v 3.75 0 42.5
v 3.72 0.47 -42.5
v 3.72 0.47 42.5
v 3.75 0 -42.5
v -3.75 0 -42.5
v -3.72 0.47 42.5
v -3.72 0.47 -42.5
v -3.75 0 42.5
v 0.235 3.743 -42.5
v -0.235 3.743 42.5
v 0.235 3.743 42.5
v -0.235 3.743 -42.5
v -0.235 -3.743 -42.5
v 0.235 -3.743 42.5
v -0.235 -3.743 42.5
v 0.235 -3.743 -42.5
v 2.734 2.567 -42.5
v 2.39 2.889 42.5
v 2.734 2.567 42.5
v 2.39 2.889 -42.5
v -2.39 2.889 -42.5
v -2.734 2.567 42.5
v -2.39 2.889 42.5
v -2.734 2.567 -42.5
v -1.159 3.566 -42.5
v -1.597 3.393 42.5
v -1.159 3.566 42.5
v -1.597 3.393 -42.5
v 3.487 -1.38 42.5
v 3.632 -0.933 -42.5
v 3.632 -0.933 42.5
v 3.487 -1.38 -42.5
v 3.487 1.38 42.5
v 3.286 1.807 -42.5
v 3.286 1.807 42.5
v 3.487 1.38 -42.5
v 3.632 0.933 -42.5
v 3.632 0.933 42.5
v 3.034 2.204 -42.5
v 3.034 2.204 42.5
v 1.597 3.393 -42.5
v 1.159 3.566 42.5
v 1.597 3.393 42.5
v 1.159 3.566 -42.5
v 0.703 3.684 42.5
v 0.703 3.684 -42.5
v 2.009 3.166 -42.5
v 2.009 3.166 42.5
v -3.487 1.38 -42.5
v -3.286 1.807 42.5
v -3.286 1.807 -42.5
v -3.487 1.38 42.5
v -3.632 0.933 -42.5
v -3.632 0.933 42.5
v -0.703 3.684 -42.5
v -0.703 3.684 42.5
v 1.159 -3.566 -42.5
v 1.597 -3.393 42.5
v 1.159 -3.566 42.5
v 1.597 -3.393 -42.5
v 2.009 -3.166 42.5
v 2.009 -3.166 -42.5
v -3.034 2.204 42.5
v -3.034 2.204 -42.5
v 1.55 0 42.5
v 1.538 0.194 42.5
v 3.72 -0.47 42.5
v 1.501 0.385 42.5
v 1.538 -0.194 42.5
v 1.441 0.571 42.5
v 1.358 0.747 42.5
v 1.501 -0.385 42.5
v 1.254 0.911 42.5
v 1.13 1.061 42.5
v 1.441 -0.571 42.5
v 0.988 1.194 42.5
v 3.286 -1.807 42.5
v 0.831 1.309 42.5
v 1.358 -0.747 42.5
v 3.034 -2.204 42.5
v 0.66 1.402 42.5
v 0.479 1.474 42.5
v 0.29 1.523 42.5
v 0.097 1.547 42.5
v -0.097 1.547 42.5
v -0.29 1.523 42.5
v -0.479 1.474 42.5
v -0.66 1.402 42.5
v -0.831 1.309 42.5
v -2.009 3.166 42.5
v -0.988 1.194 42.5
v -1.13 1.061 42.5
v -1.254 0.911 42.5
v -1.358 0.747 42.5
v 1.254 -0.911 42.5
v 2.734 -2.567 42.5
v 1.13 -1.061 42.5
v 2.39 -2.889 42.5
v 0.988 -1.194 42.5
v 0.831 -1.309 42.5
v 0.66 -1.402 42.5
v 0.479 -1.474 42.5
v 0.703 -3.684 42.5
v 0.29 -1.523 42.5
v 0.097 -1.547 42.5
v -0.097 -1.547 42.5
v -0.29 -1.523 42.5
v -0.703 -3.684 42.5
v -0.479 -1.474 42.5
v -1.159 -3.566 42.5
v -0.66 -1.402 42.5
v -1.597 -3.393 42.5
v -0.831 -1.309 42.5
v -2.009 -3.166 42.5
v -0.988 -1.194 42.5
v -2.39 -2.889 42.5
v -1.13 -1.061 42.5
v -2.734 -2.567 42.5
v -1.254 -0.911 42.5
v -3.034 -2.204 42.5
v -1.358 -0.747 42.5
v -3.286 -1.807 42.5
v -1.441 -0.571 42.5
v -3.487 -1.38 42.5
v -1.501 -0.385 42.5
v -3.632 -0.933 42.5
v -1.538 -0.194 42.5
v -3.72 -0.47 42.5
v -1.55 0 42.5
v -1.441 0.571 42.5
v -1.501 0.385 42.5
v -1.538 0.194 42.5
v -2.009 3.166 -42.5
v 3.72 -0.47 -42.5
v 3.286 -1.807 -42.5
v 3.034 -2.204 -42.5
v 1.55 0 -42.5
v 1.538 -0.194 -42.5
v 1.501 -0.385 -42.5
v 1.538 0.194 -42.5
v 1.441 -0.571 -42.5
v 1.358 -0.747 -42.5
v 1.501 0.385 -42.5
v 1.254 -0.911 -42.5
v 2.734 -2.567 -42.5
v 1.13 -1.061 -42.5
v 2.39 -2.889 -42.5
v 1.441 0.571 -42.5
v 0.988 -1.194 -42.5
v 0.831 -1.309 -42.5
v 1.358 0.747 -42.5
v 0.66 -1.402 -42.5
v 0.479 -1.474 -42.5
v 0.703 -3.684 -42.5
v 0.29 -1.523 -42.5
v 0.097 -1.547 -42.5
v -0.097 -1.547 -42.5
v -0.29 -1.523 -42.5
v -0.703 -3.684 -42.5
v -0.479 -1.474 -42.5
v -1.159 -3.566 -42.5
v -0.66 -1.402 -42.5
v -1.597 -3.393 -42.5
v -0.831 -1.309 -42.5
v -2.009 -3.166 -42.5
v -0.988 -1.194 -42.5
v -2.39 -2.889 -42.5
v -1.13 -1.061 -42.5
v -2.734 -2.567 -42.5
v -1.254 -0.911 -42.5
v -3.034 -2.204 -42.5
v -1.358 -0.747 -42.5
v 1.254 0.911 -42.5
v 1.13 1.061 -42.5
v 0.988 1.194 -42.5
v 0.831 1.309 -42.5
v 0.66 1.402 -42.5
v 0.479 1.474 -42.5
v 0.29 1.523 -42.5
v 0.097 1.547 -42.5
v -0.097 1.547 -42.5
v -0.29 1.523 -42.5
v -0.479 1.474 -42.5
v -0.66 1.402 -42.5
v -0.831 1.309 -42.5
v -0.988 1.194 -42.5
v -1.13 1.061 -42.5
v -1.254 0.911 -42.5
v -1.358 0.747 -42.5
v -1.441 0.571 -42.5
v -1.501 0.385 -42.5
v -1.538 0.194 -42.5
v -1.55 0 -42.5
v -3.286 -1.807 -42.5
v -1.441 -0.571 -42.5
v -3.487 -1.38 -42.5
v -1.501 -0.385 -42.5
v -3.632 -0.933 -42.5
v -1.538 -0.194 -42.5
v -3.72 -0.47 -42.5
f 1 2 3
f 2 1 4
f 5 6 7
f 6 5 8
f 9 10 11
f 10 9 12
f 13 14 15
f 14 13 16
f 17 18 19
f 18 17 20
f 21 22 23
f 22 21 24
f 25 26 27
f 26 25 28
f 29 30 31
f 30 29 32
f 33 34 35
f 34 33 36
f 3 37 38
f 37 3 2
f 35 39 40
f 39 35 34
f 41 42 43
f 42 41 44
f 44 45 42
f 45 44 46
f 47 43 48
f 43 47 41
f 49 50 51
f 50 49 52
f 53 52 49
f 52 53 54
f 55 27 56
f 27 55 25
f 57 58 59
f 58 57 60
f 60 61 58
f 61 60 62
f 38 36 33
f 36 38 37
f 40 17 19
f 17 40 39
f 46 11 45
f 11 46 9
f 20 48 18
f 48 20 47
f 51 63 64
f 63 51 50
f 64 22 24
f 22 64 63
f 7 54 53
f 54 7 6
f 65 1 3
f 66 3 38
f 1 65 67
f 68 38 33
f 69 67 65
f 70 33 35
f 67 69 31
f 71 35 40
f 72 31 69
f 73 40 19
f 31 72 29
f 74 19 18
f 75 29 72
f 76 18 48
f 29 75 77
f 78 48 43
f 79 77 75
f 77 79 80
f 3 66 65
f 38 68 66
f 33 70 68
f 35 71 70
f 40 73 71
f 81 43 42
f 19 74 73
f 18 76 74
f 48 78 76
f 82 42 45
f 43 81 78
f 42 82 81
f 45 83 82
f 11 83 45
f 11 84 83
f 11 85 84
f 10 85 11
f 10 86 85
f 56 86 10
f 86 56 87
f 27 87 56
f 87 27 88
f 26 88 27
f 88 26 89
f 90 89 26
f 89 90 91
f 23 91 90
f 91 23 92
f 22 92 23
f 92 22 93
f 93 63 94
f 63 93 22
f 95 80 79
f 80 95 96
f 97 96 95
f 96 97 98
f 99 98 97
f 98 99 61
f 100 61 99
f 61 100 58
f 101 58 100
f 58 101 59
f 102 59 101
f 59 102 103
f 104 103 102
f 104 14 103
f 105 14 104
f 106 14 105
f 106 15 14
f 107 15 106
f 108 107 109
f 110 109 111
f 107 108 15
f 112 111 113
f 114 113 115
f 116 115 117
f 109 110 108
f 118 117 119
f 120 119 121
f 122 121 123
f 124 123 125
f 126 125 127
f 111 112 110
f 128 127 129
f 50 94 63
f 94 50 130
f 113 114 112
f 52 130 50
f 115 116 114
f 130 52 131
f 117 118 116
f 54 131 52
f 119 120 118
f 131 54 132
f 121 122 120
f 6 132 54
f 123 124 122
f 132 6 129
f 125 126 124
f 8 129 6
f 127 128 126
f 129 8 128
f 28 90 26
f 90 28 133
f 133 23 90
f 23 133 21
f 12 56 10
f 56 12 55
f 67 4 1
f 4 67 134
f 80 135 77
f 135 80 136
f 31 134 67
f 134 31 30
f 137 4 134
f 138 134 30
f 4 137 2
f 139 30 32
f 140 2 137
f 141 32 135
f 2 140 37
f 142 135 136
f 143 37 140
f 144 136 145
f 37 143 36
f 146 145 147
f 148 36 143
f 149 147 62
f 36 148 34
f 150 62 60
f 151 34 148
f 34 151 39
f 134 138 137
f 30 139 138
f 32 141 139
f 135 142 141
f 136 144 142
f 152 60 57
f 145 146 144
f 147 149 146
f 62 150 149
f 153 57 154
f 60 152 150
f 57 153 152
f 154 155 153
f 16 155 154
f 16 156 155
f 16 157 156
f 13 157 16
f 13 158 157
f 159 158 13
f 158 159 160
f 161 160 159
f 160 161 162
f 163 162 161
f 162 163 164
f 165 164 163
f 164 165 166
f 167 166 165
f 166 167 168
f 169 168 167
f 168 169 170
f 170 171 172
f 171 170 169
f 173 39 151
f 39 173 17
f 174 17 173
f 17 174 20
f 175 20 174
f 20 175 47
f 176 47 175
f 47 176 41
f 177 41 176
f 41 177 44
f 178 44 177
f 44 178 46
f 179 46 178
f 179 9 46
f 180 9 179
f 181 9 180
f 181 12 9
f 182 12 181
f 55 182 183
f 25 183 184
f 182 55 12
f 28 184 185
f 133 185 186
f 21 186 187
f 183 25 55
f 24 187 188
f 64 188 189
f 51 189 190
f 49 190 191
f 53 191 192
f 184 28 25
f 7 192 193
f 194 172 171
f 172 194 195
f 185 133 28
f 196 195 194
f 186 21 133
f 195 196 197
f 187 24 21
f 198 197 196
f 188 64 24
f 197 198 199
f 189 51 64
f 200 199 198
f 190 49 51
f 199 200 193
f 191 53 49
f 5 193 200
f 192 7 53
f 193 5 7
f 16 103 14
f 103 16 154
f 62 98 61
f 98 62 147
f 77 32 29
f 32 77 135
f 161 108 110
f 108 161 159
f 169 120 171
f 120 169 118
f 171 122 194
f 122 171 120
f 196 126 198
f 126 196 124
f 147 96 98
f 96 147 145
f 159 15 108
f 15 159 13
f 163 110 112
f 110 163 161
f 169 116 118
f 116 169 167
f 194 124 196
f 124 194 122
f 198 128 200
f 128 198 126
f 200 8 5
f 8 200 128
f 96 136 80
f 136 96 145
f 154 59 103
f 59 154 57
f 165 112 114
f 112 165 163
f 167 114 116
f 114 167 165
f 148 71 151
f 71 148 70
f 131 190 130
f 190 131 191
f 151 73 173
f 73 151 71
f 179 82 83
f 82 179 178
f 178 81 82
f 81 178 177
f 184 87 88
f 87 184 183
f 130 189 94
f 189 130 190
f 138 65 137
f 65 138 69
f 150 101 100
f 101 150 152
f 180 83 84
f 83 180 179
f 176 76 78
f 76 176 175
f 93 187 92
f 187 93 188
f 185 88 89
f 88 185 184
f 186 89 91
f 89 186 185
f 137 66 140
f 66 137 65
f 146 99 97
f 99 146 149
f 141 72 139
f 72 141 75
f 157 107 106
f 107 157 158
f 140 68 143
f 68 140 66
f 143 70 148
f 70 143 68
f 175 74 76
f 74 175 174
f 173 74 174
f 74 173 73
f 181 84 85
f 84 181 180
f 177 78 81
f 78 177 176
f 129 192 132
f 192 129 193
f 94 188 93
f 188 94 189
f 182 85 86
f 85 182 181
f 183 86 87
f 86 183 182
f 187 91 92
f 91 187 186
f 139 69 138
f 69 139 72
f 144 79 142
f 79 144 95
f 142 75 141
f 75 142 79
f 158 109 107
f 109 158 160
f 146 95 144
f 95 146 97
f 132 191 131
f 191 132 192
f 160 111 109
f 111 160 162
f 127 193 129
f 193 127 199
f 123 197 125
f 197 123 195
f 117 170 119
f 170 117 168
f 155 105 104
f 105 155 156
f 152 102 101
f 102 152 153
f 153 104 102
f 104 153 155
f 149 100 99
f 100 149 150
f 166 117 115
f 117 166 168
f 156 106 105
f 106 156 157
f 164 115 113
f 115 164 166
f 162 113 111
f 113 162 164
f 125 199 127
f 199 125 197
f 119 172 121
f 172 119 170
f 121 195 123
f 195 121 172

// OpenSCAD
$fn = 50;


difference() {
	union() {
		translate(v = [0, 0, -42.5000000000]) {
			cylinder(h = 85, r = 3.7500000000);
		}
	}
	union() {
		translate(v = [0, 0, -100.0000000000]) {
			cylinder(h = 200, r = 1.5500000000);
		}
	}
}
